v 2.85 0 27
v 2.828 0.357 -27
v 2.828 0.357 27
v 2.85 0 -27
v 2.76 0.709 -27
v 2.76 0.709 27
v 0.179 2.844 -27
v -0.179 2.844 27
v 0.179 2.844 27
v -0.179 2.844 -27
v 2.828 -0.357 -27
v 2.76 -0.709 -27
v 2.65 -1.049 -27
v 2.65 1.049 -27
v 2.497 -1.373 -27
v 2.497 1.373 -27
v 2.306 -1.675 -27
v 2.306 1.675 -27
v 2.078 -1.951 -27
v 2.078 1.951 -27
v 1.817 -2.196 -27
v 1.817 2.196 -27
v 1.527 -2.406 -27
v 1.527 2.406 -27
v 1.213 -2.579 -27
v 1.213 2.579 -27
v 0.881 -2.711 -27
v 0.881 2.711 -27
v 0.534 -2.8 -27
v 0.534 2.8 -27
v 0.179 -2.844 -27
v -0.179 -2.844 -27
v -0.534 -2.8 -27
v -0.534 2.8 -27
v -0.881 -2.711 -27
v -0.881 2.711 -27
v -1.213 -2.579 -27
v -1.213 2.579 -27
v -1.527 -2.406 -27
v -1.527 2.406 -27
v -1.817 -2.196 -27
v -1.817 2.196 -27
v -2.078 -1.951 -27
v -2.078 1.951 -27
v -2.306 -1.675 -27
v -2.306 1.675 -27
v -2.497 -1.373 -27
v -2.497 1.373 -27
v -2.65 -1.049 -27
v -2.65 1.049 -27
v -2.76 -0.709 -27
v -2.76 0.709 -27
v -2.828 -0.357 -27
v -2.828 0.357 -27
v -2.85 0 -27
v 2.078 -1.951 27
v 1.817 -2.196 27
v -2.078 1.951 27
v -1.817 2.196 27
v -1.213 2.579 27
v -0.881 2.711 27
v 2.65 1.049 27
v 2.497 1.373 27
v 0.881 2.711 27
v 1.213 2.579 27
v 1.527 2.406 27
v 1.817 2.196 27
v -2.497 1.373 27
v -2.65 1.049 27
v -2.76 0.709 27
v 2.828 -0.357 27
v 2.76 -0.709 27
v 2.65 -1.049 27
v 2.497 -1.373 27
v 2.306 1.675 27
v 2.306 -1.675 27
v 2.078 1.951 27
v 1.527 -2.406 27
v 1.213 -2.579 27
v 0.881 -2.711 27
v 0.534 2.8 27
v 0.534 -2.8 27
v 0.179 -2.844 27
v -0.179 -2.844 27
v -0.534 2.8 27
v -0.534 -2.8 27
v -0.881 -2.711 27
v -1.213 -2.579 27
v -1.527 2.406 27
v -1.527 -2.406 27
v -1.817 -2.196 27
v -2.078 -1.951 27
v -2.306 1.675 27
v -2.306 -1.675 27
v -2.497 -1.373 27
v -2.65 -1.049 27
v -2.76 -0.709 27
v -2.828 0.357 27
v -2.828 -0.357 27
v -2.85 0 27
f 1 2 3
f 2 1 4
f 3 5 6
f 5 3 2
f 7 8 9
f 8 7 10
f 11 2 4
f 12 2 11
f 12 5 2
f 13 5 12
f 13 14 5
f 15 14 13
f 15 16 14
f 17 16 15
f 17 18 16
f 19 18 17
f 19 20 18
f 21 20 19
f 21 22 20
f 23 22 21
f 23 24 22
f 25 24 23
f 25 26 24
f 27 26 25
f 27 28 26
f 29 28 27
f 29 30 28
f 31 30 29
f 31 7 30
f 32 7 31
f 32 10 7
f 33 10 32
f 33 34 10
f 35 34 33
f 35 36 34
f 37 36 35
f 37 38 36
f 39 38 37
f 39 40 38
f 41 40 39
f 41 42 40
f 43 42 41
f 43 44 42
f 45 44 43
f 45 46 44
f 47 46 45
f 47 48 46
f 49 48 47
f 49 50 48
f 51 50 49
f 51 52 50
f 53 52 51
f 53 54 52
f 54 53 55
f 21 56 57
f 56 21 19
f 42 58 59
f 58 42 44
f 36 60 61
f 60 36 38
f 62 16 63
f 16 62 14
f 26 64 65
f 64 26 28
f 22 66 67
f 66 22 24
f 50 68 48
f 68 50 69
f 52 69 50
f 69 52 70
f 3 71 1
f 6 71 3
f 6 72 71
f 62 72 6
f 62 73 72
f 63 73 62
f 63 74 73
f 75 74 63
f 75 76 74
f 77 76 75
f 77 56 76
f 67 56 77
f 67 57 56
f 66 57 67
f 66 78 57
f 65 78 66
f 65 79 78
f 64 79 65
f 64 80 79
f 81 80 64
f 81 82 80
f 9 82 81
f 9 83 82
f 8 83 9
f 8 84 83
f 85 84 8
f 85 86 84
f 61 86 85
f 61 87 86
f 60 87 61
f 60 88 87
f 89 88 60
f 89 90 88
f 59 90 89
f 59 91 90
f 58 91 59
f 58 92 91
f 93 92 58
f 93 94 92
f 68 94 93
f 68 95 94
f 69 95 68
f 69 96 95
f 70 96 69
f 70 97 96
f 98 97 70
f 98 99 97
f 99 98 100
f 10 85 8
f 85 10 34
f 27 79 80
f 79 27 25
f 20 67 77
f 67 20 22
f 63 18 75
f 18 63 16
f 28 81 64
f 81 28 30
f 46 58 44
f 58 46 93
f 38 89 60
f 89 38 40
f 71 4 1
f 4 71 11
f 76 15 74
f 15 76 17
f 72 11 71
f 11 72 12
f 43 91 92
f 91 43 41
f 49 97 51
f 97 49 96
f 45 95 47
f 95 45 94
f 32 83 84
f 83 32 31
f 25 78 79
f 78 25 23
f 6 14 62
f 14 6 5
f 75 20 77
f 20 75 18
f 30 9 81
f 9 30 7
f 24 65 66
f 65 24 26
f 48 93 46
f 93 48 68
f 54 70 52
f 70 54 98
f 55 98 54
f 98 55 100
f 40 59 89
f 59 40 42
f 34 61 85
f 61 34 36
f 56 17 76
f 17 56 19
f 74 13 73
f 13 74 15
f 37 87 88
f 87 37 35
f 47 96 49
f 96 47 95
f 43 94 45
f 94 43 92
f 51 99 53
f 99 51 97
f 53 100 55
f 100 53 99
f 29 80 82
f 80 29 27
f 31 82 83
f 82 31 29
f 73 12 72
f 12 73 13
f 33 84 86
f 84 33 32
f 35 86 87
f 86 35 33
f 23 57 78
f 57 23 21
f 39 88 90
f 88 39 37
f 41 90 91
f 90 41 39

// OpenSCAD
$fn = 50;


difference() {
	union() {
		translate(v = [0, 0, -27.0000000000]) {
			cylinder(h = 54, r = 2.8500000000);
		}
	}
	union() {
		translate(v = [0, 0, -100.0000000000]) {
			cylinder(h = 200, r = 0);
		}
	}
}
